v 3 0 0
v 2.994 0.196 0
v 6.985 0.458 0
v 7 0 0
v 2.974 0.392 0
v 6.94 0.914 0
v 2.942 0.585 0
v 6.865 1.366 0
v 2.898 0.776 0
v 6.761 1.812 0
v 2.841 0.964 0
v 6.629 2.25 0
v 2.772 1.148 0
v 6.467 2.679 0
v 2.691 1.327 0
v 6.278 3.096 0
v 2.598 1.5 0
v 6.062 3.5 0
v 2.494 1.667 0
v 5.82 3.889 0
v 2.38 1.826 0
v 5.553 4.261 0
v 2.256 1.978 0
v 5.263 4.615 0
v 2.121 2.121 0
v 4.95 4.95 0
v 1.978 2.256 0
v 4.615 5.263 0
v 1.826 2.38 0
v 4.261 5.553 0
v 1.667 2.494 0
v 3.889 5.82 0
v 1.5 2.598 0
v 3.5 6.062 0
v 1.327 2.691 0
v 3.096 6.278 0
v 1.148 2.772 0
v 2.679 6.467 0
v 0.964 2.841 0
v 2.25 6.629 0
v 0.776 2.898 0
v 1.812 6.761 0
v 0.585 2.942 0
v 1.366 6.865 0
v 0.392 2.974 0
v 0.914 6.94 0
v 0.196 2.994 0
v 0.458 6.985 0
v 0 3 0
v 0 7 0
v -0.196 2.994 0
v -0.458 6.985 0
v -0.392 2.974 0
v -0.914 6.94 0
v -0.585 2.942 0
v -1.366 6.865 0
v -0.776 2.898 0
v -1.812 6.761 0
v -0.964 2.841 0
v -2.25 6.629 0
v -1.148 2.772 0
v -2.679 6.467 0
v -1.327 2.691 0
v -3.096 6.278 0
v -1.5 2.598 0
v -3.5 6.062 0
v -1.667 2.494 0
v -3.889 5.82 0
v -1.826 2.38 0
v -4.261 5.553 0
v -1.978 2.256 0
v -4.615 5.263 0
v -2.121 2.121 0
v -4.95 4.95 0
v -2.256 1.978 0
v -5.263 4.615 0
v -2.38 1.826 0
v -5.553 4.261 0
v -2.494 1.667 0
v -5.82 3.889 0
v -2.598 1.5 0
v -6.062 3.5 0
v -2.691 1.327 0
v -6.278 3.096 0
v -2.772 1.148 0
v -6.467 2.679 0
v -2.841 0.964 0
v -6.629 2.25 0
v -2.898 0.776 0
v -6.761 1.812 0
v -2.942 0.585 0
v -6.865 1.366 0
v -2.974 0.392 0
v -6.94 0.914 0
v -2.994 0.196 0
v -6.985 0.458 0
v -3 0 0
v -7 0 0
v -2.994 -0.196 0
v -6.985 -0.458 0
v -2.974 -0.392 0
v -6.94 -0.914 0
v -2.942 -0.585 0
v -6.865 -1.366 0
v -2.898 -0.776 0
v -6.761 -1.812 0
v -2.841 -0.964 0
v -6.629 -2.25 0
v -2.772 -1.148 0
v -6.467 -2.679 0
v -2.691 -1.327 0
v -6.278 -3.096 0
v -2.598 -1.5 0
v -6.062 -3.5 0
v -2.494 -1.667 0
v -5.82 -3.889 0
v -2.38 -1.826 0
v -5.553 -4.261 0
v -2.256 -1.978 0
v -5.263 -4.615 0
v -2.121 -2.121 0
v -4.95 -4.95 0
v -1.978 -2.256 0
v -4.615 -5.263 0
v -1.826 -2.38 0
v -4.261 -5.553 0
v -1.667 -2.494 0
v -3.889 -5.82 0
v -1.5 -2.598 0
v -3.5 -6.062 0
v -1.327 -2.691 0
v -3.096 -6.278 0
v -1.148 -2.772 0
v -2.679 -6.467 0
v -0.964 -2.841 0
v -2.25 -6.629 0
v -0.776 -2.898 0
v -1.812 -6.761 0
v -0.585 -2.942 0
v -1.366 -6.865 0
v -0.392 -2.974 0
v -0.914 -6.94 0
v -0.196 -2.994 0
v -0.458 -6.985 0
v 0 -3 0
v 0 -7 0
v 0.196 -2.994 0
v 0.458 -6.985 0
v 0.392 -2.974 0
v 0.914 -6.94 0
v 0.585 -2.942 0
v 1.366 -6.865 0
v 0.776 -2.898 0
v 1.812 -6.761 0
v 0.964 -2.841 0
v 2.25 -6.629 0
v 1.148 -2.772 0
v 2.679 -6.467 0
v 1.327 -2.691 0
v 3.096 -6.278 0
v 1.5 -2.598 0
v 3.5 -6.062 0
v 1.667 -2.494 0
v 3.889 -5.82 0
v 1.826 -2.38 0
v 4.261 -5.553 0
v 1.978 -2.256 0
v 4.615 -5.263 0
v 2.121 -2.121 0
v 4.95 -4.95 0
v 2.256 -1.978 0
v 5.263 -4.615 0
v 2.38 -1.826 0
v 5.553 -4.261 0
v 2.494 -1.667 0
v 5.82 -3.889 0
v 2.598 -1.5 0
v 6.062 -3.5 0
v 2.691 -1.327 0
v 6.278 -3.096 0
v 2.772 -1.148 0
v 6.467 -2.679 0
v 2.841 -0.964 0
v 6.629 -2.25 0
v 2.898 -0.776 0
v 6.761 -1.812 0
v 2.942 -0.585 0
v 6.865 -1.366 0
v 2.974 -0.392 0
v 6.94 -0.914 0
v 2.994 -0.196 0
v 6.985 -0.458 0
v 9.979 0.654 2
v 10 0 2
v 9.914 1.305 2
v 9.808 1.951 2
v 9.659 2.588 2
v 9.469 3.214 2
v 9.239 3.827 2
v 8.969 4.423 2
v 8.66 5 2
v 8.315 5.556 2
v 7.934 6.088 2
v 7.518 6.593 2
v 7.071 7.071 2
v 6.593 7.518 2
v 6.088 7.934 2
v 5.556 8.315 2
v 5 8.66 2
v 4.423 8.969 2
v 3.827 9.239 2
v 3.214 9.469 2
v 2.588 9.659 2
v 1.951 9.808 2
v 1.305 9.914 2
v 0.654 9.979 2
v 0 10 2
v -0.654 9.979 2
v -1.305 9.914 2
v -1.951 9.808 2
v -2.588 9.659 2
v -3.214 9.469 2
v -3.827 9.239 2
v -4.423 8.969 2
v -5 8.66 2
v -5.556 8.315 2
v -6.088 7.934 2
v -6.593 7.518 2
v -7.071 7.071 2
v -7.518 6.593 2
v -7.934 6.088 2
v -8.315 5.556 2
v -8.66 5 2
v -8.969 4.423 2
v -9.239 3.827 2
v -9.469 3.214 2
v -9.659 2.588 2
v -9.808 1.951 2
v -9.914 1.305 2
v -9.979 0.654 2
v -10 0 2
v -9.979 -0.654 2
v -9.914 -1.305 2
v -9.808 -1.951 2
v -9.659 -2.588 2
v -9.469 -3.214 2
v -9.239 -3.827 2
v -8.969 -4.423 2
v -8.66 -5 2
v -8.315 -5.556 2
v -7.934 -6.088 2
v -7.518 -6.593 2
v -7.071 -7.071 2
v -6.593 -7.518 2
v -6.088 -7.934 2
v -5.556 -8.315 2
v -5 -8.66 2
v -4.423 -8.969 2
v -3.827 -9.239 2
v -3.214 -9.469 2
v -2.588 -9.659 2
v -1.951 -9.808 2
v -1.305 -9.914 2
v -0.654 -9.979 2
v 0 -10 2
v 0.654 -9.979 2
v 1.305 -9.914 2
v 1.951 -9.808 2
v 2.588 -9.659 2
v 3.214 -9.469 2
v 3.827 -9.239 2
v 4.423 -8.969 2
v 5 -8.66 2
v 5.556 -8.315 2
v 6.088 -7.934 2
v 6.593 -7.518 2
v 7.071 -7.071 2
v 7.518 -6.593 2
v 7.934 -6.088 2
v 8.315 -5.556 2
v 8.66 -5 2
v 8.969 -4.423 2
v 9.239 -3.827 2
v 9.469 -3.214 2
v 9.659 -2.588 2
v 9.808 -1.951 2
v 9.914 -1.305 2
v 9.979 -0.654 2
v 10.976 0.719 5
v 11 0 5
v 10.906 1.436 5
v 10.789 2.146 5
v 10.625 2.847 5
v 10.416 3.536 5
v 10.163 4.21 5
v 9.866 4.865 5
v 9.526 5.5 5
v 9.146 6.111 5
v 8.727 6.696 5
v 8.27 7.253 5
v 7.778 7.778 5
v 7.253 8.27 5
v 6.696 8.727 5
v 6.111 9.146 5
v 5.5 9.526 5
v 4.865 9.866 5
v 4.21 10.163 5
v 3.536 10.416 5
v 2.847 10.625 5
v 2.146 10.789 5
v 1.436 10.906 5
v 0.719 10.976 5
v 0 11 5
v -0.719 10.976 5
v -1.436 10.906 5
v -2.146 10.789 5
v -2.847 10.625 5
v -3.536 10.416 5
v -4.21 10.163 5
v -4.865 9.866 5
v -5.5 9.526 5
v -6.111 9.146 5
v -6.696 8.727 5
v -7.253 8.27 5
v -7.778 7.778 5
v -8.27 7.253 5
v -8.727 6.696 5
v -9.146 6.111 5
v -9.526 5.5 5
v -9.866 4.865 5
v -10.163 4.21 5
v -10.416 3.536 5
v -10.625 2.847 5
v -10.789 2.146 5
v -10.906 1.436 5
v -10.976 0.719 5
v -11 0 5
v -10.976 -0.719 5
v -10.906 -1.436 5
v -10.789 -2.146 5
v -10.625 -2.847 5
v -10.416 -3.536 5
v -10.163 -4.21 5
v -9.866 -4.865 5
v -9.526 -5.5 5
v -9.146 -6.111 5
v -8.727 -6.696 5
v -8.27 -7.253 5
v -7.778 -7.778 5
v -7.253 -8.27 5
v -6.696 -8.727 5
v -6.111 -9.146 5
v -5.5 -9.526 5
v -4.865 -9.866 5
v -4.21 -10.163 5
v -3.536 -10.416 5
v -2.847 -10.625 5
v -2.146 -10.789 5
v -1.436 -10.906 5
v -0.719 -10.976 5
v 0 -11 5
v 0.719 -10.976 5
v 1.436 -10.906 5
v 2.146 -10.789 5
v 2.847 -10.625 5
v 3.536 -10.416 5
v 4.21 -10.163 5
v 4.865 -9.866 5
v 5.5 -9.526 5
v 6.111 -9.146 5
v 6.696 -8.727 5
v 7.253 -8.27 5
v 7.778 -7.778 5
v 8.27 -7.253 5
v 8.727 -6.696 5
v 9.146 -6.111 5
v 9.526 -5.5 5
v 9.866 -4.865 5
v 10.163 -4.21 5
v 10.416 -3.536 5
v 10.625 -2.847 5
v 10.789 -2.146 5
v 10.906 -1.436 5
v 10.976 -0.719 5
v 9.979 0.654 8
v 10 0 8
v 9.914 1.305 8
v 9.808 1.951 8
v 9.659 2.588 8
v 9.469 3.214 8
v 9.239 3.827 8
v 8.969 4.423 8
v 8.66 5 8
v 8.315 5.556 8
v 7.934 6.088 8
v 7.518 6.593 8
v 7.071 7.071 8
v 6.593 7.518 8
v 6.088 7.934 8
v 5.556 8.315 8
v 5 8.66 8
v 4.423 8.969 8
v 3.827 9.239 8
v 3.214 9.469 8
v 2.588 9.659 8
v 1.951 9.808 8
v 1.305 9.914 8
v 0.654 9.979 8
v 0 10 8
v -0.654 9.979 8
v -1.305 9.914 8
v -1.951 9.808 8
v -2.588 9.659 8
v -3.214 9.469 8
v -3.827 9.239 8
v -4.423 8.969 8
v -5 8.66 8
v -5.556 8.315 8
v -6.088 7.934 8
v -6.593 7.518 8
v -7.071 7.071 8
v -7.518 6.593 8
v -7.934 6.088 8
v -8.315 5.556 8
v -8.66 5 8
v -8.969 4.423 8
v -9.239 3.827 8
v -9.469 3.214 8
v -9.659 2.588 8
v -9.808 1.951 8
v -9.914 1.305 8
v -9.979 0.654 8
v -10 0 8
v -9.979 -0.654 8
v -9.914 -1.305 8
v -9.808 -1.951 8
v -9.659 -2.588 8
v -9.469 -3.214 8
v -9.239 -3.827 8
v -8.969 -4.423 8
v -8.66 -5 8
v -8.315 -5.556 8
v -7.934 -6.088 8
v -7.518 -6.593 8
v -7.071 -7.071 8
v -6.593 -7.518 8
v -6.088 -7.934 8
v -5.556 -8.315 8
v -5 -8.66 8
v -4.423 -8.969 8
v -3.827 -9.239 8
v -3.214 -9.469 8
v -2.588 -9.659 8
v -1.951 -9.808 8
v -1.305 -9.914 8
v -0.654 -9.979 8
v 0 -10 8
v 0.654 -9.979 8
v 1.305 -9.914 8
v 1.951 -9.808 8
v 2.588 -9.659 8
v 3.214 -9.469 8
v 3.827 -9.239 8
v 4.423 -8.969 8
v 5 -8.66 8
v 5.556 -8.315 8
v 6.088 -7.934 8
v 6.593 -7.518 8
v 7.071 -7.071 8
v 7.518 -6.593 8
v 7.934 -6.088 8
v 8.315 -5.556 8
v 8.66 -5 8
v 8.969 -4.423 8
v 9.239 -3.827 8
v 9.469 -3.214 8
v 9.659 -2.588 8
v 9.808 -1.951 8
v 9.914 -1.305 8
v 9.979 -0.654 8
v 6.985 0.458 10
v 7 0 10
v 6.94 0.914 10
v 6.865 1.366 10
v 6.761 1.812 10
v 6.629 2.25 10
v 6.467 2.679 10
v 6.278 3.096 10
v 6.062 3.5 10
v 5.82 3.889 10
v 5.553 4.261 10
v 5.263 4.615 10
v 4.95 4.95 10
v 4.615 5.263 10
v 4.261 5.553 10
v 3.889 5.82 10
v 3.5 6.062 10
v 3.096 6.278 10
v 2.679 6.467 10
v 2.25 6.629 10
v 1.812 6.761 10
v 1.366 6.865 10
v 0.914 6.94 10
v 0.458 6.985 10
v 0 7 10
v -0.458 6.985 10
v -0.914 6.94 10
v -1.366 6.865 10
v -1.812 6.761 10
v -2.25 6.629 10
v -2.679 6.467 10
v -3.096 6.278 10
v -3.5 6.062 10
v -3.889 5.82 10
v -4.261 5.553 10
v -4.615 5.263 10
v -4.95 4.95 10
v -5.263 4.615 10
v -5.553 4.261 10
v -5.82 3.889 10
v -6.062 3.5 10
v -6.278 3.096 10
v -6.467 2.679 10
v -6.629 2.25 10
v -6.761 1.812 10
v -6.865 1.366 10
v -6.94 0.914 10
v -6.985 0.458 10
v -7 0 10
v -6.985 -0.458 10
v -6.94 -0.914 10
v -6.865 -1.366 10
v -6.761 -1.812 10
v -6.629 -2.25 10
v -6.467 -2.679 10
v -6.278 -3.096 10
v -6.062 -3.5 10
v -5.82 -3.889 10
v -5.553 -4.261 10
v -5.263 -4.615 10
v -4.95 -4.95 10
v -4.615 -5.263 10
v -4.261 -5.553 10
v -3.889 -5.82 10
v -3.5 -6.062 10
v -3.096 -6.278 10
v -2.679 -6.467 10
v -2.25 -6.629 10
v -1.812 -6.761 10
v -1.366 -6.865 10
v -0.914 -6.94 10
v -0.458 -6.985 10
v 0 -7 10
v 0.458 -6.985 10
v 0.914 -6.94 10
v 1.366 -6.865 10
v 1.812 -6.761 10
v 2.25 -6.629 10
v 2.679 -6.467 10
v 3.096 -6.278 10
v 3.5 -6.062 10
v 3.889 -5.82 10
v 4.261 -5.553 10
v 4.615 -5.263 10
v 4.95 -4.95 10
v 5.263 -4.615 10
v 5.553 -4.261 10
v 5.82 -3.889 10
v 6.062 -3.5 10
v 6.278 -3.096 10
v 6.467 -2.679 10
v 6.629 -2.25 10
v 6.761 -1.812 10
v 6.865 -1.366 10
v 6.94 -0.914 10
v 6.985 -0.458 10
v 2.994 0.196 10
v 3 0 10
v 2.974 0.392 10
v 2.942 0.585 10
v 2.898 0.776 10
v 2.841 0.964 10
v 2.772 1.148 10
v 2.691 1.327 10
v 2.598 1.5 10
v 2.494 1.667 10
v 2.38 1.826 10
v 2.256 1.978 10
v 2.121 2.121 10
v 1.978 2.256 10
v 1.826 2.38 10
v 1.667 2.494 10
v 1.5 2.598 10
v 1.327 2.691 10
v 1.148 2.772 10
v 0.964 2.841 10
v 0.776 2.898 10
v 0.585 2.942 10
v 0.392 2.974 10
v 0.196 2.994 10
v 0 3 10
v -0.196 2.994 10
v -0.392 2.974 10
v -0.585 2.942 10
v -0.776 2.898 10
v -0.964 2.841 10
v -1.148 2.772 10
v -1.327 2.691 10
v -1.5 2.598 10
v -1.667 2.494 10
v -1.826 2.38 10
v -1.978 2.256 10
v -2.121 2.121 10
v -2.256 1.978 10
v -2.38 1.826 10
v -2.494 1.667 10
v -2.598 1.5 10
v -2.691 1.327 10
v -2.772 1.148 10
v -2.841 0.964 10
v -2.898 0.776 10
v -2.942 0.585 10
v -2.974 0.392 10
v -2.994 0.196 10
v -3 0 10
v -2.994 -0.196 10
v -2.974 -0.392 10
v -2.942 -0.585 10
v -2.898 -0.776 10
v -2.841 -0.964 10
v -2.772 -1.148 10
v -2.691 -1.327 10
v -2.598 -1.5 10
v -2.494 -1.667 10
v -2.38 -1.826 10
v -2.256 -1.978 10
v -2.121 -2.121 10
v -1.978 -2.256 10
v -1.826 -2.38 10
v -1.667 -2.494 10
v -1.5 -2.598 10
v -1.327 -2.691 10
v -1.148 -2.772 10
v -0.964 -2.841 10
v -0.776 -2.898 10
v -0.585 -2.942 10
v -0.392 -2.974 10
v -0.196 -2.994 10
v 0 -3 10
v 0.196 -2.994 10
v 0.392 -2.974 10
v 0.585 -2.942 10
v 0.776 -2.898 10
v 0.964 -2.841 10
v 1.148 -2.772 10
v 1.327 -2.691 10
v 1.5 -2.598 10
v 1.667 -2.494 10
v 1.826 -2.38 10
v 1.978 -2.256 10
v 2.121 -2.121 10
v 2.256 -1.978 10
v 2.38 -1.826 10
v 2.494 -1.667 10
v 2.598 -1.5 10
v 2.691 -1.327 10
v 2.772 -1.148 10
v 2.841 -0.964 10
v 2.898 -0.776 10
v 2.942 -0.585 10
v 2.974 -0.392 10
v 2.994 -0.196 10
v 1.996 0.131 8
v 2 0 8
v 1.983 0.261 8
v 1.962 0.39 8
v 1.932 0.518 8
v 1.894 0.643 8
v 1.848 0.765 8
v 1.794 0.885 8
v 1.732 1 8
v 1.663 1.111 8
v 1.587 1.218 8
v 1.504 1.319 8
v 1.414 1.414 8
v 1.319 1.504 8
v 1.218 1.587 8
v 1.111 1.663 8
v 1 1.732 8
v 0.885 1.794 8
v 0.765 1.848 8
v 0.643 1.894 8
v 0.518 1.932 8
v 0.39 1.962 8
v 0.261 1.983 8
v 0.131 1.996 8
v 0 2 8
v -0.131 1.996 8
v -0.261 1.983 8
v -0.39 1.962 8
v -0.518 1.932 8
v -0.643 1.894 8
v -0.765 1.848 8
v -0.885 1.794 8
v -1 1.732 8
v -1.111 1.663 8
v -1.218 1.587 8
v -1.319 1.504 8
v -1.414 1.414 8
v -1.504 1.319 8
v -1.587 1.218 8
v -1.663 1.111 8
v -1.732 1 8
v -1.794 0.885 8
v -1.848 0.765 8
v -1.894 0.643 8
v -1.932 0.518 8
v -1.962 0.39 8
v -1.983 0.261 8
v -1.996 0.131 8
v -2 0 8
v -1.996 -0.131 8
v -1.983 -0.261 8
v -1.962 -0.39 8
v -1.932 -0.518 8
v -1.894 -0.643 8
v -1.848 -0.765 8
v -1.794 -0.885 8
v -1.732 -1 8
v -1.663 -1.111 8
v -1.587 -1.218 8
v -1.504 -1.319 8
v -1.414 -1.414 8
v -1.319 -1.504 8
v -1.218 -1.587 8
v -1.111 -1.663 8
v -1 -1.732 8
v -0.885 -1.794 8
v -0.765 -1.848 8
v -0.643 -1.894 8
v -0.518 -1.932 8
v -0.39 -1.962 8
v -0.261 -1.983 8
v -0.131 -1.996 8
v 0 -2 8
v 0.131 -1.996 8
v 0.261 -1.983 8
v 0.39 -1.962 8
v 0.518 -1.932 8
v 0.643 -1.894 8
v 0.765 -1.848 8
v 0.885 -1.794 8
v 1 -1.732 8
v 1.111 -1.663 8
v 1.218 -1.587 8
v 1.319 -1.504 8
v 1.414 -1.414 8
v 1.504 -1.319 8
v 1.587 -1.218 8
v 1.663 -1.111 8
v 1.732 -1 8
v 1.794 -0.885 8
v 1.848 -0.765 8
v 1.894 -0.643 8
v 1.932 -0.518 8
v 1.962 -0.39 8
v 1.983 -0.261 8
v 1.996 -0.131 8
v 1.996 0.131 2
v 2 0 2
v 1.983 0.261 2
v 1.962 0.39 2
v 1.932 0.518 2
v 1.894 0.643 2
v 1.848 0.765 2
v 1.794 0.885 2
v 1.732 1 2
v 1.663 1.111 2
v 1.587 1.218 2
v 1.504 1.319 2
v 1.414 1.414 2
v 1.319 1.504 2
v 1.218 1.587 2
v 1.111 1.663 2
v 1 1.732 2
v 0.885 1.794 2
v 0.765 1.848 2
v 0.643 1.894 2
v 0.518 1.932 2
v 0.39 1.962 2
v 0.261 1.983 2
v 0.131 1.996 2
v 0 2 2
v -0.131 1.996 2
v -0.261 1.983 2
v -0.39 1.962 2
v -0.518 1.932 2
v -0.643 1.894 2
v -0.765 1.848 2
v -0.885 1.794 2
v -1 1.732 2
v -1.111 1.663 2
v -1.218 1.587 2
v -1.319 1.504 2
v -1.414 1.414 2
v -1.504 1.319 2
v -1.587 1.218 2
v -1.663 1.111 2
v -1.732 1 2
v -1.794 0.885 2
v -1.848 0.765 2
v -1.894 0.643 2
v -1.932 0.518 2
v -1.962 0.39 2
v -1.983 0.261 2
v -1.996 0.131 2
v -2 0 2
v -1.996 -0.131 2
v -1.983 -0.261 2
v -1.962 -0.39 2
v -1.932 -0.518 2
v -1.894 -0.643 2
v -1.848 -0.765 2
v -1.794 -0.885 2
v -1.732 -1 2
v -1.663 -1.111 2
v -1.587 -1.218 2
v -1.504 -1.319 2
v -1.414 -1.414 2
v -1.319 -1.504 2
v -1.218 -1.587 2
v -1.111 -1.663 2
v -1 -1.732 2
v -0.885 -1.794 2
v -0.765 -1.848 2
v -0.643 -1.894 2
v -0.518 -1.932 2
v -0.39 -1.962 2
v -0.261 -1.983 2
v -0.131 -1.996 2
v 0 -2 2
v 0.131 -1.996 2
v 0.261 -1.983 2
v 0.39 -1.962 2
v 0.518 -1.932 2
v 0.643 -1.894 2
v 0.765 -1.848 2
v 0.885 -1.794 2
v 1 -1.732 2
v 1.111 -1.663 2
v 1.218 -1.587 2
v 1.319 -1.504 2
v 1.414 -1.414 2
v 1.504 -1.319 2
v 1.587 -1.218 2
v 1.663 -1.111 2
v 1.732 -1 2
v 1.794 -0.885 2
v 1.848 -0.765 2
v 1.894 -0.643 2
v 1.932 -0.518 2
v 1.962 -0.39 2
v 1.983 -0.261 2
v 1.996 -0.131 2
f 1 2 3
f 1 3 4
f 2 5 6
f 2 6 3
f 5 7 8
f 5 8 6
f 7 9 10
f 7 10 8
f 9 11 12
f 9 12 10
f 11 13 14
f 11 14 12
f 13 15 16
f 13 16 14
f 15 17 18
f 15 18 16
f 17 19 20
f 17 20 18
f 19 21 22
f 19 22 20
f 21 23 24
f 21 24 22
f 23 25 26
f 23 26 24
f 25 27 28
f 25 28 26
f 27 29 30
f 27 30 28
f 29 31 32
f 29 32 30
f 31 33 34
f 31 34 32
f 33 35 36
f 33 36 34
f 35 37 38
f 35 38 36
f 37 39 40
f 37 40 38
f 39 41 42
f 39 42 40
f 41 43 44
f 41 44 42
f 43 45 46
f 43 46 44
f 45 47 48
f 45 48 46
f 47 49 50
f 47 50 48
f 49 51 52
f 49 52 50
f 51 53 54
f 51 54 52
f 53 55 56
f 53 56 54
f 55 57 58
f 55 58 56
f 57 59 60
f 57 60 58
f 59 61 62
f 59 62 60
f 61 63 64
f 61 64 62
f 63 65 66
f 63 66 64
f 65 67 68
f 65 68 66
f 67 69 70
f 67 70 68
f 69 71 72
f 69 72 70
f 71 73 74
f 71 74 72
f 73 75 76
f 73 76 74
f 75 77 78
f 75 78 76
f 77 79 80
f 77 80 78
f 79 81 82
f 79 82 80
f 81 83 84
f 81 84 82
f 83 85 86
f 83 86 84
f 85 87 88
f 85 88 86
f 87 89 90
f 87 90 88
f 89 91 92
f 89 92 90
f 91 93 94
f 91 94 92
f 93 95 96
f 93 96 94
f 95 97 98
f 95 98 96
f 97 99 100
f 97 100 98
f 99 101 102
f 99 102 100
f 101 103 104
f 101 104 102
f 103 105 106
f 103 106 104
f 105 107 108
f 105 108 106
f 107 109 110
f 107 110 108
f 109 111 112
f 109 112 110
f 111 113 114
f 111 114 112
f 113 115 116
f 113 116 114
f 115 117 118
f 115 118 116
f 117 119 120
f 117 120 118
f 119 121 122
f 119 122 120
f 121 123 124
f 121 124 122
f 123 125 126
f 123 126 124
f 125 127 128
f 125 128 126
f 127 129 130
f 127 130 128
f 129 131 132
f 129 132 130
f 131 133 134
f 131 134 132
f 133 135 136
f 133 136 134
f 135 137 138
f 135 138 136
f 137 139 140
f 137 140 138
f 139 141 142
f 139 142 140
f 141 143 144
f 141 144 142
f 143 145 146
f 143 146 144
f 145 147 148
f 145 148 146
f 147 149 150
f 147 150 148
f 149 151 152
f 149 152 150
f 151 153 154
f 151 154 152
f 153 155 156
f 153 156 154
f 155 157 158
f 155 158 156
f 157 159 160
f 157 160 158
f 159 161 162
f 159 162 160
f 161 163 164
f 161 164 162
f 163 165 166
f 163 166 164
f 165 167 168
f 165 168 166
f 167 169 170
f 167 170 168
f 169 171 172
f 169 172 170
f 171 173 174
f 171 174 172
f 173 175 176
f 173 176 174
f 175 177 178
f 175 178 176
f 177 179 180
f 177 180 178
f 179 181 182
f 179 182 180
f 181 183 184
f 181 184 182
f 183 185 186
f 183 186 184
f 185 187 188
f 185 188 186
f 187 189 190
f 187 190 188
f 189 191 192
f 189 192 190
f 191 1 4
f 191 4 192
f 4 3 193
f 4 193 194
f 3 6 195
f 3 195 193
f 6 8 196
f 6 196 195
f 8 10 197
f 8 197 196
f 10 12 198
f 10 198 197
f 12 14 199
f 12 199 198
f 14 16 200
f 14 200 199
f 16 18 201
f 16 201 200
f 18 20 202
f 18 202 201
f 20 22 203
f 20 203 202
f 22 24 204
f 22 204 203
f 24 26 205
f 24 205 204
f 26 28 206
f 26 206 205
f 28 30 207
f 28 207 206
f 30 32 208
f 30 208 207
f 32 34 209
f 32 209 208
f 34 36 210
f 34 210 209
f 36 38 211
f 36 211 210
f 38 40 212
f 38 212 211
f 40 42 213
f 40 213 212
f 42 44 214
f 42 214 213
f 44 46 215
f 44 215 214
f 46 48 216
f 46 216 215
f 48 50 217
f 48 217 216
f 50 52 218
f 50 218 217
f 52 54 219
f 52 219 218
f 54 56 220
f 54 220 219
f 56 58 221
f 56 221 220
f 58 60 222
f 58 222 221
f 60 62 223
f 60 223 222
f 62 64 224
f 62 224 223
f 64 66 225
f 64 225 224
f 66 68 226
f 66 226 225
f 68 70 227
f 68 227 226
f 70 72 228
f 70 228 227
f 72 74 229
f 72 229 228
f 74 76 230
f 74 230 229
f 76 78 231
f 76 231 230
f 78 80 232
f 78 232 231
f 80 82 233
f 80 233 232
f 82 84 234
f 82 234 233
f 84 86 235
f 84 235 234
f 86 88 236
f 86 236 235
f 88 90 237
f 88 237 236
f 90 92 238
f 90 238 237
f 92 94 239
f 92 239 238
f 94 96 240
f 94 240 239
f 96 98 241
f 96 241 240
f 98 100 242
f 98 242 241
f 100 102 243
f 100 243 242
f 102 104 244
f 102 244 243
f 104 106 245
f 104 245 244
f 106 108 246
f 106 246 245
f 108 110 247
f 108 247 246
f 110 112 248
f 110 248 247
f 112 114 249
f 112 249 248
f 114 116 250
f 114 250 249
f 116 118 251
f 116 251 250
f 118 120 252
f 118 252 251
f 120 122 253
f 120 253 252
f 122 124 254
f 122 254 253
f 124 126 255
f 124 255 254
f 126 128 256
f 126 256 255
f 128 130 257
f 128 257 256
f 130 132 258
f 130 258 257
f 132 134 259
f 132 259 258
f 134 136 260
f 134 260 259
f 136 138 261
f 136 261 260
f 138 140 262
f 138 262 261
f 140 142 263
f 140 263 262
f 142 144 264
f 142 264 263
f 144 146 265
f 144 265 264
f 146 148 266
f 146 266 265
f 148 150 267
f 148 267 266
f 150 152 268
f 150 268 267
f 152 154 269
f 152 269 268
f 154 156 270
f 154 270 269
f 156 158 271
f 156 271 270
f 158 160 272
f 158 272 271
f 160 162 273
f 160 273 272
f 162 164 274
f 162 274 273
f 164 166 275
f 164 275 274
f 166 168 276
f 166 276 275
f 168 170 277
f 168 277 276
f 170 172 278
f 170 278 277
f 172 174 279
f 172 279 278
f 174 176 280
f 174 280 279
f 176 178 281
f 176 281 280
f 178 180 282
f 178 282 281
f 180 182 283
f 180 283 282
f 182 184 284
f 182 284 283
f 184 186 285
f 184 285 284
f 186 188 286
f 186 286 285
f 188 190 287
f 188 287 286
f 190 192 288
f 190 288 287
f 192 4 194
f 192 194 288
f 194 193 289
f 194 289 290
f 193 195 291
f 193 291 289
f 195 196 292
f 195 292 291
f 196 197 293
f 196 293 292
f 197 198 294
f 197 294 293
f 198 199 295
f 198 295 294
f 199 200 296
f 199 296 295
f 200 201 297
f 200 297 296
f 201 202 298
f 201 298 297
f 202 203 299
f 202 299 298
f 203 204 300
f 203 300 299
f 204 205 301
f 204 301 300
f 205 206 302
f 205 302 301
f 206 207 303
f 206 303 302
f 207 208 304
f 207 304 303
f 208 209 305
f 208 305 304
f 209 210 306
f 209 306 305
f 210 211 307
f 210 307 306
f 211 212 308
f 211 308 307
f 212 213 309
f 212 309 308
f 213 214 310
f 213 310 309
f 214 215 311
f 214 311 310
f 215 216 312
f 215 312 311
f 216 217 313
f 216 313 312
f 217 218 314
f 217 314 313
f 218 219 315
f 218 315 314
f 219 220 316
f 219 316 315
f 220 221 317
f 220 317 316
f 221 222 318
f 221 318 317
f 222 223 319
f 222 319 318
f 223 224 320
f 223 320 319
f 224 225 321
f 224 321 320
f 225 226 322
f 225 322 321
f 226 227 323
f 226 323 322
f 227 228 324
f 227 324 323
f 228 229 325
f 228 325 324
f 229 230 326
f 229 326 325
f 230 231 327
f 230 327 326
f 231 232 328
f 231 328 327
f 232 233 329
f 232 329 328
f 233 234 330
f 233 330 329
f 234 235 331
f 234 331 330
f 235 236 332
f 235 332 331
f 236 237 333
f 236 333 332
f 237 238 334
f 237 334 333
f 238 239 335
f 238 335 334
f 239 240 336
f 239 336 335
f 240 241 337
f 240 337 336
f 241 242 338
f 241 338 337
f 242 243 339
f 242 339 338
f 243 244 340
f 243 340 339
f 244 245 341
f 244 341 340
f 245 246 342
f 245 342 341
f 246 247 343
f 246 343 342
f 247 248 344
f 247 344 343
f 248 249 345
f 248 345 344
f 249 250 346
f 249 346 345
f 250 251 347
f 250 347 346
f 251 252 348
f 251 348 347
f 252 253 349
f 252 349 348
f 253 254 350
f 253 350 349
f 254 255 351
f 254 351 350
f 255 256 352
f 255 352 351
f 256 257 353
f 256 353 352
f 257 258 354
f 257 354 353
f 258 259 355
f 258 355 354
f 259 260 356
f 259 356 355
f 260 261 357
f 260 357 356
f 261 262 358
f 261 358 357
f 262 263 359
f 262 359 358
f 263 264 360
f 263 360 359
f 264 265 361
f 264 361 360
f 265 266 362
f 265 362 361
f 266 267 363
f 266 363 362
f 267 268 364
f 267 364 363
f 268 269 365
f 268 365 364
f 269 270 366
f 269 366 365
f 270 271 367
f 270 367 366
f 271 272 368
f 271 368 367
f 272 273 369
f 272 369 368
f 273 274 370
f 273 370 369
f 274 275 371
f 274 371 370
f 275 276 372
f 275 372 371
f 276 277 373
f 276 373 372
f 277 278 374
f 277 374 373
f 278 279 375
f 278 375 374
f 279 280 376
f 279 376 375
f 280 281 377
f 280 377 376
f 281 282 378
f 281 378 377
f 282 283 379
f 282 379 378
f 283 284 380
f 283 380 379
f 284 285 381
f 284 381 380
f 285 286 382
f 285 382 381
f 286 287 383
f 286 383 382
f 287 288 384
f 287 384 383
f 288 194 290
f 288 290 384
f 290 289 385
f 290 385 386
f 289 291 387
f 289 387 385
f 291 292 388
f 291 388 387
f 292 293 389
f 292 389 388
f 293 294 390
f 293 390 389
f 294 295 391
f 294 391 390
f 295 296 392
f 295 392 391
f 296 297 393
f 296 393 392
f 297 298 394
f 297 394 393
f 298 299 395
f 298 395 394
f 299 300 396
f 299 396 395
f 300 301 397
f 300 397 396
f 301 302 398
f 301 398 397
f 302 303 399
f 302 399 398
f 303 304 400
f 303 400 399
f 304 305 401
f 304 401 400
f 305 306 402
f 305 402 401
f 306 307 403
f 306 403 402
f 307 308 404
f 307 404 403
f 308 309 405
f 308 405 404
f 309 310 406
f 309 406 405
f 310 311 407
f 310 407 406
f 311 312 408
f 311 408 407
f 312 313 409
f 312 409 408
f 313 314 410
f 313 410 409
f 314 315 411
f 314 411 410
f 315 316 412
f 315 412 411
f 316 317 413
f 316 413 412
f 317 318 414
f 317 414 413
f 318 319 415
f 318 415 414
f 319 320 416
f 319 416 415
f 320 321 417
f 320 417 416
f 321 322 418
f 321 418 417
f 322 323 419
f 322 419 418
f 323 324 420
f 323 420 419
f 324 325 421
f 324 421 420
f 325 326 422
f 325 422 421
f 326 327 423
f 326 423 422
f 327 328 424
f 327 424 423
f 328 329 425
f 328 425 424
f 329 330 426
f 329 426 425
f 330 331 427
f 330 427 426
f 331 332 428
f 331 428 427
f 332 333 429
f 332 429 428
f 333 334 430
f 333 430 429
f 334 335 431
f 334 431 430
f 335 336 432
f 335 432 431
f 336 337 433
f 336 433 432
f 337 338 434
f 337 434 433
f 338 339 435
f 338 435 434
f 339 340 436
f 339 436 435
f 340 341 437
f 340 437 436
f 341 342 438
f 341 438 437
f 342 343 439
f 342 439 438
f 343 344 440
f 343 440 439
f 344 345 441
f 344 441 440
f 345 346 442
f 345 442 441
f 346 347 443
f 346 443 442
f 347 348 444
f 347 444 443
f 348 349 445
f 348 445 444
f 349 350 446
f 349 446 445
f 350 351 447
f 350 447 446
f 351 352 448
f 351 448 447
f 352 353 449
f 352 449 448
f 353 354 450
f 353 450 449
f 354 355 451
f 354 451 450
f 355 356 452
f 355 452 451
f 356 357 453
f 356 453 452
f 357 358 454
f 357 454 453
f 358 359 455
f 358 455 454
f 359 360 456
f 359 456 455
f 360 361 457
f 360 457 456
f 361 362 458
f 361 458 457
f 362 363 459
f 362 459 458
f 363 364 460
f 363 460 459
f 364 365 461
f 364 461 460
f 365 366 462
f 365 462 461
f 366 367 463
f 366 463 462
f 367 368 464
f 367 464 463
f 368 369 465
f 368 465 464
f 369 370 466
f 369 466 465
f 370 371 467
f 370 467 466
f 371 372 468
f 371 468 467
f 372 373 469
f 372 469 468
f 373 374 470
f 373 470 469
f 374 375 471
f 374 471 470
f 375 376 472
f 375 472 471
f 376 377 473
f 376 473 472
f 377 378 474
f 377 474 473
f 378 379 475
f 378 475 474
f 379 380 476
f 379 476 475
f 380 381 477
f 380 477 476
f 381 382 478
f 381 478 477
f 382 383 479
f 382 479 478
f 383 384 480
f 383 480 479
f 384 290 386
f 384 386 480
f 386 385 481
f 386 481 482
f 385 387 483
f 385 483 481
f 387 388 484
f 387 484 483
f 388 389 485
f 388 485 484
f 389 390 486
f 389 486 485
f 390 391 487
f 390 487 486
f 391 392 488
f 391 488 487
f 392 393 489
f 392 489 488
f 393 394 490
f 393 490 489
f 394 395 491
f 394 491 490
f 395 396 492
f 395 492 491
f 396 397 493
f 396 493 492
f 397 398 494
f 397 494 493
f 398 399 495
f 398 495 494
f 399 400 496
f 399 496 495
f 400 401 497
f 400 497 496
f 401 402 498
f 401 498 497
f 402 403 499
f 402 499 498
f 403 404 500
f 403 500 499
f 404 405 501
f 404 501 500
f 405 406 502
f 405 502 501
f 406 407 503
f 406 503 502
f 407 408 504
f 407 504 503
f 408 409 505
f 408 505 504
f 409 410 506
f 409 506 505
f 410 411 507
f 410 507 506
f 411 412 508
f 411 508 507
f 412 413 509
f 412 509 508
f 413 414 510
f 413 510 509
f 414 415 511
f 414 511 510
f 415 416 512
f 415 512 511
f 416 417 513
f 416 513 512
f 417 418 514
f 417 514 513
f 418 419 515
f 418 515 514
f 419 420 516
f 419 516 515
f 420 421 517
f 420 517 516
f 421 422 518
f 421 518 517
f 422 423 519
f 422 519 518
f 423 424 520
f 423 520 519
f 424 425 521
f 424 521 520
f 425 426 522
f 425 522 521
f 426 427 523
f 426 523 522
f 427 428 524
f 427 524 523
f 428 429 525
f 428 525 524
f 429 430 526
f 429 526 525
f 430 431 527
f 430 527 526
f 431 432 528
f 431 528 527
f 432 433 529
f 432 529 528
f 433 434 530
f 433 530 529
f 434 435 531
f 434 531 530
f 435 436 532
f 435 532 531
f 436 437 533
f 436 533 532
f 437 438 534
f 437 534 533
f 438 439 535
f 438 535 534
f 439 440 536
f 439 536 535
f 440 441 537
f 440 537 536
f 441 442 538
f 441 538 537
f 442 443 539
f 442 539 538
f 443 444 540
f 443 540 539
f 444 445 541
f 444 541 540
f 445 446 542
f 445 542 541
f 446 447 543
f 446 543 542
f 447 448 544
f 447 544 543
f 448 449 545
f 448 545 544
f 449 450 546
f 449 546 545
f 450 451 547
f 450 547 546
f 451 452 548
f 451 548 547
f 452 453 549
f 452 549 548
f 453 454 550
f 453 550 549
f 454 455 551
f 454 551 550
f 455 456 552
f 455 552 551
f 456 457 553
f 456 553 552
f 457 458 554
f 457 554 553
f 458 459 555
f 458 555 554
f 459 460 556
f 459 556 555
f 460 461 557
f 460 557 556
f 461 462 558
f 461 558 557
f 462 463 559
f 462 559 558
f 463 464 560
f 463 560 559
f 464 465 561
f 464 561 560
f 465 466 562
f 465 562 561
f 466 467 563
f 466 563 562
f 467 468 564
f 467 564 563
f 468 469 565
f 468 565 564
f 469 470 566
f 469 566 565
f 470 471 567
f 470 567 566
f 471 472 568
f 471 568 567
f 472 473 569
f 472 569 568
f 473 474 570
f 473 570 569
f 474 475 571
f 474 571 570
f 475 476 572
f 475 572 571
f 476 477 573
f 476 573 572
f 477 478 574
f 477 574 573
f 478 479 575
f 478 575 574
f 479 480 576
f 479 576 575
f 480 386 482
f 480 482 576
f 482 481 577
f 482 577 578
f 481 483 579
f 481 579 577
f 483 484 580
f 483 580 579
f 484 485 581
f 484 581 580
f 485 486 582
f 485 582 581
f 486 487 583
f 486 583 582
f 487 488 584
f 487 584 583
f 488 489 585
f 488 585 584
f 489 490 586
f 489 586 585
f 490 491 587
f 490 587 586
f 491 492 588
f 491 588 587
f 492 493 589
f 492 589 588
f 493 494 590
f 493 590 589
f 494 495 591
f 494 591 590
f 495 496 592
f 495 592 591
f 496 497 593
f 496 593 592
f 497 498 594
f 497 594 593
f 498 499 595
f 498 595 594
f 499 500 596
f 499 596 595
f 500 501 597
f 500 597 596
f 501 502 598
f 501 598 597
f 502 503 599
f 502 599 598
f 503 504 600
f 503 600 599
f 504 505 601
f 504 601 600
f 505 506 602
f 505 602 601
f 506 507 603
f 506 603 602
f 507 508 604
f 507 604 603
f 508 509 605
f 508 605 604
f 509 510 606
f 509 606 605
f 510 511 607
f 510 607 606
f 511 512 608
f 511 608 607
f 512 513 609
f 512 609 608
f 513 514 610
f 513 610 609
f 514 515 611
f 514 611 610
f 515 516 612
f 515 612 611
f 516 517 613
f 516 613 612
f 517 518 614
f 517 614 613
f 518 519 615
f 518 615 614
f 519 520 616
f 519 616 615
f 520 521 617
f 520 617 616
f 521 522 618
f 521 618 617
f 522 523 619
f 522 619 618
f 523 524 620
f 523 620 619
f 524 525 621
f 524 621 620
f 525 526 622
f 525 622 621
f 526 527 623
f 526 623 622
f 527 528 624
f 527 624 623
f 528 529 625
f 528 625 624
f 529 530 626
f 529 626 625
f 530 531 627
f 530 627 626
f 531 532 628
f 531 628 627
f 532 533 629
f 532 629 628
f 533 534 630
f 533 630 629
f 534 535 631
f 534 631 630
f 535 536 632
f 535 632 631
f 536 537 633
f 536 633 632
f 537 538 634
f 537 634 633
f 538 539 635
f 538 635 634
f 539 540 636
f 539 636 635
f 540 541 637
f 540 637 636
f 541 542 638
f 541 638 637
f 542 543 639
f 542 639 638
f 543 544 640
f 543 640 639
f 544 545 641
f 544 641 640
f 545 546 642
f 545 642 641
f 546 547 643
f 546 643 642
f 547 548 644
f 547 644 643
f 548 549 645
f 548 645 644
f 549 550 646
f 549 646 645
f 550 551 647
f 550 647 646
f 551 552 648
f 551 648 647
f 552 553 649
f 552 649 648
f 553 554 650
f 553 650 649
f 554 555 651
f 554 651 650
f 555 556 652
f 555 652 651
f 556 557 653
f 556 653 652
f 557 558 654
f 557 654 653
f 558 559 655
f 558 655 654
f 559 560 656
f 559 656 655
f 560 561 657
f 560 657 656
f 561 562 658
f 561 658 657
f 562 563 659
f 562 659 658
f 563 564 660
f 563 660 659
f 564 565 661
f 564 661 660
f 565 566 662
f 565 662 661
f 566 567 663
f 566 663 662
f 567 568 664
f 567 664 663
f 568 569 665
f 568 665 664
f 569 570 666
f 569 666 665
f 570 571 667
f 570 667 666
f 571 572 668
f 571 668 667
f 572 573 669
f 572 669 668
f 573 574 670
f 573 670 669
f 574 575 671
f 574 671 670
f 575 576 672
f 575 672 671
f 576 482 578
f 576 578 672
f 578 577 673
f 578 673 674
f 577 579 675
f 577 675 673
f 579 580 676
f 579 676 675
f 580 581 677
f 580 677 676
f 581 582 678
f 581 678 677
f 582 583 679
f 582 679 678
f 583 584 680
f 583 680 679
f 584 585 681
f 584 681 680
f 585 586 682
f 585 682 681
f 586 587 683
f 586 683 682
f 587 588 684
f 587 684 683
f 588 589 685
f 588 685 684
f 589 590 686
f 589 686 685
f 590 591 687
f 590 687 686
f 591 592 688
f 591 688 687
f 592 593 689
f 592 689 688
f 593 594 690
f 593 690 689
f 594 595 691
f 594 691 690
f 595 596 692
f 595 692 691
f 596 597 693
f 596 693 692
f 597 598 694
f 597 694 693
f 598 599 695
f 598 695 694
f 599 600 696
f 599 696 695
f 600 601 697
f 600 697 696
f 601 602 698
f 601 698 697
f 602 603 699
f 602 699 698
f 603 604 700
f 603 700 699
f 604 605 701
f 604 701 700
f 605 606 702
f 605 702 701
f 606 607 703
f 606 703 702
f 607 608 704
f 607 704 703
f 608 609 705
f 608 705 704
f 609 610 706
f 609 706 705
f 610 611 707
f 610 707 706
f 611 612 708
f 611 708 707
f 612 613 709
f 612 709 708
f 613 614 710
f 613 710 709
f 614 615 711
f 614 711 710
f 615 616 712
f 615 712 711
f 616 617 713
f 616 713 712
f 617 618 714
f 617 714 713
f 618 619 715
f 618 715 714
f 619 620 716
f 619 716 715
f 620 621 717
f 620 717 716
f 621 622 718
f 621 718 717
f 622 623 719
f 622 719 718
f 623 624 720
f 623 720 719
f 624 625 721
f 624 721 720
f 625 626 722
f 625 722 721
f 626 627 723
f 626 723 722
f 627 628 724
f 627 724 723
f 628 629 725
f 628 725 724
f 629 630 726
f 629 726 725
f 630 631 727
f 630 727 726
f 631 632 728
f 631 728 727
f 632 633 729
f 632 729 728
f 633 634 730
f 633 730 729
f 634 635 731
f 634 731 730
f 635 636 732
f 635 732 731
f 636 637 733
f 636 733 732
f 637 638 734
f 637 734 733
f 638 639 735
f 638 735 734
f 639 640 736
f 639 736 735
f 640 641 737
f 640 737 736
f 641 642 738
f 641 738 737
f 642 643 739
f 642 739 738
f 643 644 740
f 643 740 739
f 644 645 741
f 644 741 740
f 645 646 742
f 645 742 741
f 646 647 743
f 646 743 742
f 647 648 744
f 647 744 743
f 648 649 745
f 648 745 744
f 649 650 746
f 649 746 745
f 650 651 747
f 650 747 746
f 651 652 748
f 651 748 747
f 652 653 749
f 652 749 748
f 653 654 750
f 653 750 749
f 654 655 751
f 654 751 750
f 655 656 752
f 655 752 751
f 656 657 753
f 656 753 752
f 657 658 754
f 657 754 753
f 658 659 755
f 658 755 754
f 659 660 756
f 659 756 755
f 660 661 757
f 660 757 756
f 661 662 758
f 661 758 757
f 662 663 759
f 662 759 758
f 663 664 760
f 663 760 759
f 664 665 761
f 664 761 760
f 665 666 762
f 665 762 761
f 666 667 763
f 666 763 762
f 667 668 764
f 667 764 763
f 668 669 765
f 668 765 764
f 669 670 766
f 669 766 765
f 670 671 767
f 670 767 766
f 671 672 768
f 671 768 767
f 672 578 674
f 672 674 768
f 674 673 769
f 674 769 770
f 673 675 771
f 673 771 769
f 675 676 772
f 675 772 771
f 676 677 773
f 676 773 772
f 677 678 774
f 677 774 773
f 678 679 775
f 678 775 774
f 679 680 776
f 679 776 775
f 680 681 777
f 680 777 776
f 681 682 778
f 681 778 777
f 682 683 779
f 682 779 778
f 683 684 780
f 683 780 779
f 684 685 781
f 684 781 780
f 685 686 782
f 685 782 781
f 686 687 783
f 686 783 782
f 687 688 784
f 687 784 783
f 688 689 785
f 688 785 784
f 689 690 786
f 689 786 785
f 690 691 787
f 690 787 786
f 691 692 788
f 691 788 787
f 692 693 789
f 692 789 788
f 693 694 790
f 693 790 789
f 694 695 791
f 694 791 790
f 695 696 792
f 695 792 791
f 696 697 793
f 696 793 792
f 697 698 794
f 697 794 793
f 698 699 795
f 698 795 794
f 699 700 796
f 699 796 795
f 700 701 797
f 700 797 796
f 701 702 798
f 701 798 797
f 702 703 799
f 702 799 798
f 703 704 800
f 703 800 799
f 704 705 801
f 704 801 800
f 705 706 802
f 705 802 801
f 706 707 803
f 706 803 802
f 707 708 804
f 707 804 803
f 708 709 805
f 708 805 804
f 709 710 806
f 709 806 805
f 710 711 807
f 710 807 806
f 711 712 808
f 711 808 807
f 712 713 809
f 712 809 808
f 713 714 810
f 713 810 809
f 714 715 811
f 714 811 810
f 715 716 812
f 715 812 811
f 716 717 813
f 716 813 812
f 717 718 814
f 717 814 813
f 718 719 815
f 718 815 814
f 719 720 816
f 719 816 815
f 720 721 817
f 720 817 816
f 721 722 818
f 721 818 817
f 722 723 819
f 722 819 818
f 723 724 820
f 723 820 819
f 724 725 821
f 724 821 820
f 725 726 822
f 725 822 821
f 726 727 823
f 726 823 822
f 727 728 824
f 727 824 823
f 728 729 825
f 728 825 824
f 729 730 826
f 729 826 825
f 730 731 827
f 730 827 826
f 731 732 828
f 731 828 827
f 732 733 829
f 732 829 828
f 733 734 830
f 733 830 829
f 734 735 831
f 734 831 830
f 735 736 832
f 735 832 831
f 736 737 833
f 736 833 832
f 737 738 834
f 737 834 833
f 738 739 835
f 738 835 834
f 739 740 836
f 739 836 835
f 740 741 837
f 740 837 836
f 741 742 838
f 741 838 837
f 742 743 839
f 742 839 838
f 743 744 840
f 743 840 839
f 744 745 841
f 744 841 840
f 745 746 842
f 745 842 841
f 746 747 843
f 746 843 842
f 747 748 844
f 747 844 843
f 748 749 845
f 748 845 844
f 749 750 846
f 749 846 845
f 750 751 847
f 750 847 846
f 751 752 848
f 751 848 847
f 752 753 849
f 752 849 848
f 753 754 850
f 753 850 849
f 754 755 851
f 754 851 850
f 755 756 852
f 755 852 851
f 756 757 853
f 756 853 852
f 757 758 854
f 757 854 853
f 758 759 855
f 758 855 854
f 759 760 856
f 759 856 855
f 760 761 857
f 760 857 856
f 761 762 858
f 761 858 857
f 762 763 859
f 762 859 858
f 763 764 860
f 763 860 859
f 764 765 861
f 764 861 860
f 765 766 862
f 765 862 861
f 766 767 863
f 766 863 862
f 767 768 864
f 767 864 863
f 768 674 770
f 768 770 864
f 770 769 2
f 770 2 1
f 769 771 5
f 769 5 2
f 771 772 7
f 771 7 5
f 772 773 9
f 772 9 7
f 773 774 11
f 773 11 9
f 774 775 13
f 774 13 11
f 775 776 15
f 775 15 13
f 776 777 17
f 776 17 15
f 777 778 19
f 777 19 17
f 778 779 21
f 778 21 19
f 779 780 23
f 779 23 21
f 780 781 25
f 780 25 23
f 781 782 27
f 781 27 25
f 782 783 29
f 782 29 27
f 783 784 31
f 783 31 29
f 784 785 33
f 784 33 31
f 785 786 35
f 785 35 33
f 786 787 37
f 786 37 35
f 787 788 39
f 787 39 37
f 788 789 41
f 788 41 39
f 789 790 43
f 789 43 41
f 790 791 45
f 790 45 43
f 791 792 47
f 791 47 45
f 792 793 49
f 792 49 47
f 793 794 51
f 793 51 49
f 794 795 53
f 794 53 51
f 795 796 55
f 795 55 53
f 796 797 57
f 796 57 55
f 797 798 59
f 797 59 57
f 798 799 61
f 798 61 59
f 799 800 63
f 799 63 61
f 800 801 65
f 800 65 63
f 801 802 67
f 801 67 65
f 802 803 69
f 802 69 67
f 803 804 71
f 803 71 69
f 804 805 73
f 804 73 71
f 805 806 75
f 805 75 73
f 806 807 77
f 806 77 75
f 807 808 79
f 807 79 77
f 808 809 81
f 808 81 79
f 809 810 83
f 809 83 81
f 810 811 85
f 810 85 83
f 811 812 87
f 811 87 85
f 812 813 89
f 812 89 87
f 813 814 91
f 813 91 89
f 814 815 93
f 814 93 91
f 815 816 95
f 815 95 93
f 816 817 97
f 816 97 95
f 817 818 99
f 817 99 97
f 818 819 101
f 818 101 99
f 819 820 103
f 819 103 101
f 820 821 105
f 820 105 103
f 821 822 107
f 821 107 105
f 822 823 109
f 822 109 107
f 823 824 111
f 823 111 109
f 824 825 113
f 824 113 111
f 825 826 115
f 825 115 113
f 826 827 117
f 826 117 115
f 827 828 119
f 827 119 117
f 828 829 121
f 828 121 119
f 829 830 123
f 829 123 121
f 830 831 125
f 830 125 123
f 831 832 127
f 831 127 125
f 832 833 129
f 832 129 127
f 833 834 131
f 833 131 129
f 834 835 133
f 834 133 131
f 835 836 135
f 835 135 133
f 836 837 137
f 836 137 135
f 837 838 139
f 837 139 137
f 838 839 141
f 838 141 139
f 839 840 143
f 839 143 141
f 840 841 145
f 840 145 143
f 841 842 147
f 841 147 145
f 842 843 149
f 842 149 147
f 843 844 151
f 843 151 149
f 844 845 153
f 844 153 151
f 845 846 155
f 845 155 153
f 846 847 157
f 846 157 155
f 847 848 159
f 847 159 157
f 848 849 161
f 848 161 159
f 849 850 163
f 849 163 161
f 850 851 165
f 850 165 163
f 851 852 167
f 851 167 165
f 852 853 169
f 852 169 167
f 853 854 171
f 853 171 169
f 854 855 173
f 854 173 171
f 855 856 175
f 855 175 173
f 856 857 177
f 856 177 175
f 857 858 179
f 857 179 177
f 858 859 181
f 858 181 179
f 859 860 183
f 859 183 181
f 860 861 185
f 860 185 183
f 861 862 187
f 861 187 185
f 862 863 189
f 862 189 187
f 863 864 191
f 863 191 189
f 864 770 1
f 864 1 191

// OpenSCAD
// Original MechIntel educational model. CC0-1.0. Units: mm.
// Not a standardized or load-rated component.
$fn=96;
// Section points: [radius, height], mm. Edit to change the profile.
section=[[3, 0], [7, 0], [10, 2], [11, 5], [10, 8], [7, 10], [3, 10], [2, 8], [2, 2]];
rotate_extrude($fn=96) polygon(points=section);
